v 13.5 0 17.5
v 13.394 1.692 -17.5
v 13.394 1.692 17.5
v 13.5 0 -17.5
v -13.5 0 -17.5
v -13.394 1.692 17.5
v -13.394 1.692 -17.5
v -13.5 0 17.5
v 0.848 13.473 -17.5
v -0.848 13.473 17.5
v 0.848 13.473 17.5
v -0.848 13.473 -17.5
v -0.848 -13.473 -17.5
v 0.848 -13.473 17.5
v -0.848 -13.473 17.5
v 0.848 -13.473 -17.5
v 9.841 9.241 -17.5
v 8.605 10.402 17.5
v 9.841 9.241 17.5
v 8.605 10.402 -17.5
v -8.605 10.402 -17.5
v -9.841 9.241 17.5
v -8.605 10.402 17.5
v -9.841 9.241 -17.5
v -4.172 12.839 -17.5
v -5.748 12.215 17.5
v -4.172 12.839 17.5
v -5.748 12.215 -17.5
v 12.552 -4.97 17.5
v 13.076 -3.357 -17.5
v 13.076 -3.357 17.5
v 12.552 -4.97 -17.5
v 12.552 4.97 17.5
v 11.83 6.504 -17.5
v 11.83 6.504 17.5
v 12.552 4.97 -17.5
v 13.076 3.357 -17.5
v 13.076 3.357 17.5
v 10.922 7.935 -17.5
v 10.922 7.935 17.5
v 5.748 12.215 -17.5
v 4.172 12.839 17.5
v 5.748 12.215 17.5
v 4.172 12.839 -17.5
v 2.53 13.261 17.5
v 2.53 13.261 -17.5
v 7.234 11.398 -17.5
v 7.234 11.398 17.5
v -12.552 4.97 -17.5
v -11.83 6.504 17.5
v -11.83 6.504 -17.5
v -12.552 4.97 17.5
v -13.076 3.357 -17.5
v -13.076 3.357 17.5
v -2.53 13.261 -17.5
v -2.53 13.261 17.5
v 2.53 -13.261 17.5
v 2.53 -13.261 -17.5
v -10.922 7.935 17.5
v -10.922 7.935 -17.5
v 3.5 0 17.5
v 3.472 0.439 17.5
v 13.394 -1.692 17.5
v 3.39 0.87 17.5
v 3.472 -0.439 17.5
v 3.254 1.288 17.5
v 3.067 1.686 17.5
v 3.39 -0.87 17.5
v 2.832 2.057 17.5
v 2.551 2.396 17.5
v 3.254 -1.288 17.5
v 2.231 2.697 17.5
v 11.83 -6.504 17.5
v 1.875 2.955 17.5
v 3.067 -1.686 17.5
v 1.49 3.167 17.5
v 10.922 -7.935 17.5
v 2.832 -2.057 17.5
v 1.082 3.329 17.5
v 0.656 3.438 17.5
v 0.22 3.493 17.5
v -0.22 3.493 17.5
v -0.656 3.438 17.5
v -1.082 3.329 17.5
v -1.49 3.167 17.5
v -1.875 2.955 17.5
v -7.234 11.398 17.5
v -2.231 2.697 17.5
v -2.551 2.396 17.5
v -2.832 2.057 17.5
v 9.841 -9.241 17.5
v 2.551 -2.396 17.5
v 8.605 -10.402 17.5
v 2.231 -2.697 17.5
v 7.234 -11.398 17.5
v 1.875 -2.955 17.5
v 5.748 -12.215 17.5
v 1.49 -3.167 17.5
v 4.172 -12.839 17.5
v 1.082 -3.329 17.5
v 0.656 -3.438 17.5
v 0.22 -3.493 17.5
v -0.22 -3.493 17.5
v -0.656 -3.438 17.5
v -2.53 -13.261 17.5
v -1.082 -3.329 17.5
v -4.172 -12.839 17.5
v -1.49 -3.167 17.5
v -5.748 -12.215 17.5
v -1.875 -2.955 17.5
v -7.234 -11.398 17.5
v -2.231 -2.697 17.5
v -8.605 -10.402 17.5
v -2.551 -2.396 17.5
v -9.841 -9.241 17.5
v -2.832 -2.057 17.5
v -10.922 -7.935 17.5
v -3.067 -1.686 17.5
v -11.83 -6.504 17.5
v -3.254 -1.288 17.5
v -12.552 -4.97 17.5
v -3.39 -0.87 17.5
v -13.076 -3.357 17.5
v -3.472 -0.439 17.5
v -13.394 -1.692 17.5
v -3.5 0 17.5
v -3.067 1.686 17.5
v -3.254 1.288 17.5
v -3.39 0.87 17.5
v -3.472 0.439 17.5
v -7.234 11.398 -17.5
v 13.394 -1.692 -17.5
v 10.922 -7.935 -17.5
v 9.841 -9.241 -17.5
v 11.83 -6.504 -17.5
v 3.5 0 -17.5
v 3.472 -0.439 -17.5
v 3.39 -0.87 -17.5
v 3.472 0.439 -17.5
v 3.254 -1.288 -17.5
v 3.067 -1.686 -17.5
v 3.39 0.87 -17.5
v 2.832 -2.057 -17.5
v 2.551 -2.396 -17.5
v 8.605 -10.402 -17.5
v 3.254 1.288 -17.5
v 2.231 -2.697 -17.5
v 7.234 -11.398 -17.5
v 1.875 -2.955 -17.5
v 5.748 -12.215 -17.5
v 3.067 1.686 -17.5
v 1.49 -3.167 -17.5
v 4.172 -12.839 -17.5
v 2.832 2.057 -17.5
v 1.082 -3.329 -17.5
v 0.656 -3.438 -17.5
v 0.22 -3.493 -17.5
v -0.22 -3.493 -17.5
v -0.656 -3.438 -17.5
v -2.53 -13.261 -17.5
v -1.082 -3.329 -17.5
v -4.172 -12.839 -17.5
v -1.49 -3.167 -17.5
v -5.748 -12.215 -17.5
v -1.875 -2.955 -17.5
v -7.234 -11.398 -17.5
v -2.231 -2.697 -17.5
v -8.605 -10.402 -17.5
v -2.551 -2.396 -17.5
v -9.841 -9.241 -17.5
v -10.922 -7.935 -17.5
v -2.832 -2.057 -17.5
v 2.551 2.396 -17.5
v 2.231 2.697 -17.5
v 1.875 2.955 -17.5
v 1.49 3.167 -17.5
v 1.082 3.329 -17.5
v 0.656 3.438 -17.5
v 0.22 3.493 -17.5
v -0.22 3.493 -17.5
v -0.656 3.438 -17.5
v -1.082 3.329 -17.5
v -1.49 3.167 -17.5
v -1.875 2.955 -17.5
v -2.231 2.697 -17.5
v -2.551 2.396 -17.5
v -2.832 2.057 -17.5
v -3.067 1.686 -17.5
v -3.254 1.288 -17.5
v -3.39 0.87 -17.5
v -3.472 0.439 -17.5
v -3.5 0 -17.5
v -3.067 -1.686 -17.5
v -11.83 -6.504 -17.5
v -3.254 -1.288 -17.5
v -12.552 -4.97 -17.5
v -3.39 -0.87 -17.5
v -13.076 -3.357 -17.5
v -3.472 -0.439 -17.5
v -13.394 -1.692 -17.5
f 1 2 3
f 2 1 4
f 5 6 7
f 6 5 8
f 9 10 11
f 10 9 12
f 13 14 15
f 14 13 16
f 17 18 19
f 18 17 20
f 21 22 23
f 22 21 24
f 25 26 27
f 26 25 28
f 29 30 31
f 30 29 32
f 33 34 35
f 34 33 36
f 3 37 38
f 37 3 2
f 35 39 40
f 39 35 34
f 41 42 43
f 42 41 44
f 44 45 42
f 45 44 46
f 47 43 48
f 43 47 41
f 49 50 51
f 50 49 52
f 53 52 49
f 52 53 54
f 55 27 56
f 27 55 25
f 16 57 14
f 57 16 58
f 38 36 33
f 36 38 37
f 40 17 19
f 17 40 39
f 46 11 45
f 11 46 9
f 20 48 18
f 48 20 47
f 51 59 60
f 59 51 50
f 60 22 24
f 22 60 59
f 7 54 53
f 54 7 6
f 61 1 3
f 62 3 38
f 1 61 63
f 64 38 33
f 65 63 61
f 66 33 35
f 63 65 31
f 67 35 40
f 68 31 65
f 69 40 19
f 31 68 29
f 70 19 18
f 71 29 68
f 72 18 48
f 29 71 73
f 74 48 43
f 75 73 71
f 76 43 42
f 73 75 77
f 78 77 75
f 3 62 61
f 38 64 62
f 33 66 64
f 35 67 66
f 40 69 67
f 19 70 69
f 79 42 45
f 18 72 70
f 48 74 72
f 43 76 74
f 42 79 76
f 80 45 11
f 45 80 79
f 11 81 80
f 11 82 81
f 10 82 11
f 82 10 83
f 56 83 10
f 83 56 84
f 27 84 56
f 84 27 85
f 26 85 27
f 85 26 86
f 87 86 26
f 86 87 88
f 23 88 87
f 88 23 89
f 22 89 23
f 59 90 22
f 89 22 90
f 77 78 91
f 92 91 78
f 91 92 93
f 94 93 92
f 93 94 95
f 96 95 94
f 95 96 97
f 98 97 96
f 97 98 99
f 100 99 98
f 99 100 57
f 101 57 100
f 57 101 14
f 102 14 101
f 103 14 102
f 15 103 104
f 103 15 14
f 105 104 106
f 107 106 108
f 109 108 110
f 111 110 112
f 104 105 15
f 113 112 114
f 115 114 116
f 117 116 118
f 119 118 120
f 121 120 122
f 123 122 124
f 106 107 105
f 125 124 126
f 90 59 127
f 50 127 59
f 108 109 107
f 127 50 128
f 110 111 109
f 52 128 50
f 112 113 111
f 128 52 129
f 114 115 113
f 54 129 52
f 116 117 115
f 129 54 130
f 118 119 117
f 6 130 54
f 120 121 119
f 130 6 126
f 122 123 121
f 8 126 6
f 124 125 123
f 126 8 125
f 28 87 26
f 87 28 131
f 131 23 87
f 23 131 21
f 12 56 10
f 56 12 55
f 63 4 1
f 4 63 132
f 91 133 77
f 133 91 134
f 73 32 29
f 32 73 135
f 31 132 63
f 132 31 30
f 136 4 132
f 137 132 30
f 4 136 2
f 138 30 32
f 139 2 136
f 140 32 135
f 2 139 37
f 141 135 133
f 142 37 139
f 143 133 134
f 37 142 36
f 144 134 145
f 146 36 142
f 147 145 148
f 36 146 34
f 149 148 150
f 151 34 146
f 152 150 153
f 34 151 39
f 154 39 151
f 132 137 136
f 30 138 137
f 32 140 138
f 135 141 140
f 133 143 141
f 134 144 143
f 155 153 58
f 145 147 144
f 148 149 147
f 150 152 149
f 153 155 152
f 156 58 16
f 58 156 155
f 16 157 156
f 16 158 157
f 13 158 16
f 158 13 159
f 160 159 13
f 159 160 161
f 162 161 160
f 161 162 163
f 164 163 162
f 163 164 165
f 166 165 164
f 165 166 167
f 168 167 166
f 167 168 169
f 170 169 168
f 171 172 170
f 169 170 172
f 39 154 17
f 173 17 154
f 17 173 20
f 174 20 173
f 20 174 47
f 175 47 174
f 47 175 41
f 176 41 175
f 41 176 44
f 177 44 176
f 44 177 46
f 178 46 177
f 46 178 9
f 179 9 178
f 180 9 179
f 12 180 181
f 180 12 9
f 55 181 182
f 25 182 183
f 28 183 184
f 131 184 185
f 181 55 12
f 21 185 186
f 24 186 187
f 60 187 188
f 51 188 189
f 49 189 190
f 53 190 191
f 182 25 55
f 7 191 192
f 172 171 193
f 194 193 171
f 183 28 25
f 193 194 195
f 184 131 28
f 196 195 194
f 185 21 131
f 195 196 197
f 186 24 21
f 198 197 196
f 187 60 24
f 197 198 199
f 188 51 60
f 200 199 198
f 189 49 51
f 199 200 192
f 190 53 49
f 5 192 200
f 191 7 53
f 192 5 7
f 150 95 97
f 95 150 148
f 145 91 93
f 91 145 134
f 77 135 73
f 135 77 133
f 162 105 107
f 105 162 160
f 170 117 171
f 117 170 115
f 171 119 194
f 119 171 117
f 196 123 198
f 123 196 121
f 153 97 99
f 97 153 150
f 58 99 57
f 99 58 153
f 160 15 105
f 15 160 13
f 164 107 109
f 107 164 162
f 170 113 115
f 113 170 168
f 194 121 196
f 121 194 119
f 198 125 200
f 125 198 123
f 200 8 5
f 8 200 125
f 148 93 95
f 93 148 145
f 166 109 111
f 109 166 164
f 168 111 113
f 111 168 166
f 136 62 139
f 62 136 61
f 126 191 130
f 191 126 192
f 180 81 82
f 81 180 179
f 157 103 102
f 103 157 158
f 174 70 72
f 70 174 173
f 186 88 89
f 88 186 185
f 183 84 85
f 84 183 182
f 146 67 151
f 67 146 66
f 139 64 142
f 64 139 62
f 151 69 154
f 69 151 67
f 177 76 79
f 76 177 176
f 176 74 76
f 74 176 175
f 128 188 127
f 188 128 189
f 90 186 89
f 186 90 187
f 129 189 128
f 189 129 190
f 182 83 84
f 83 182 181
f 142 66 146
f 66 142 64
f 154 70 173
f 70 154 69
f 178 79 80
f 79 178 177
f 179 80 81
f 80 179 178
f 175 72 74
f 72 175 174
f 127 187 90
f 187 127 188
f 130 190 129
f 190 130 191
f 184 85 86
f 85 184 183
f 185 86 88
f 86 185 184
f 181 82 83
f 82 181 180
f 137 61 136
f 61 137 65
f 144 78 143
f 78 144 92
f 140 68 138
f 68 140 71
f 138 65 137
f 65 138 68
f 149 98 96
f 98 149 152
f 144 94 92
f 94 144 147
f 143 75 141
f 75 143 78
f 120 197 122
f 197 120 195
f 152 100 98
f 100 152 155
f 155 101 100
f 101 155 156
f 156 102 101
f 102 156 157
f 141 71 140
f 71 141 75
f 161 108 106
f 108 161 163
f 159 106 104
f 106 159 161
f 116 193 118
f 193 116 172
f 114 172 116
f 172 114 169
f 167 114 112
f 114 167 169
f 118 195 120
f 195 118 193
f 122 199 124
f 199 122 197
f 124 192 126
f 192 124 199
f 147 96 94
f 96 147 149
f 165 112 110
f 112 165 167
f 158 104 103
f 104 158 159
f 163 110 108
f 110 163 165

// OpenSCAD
$fn = 50;


difference() {
	union() {
		translate(v = [0, 0, -17.5000000000]) {
			cylinder(h = 35, r = 13.5000000000);
		}
	}
	union() {
		translate(v = [0, 0, -100.0000000000]) {
			cylinder(h = 200, r = 3.5000000000);
		}
	}
}
